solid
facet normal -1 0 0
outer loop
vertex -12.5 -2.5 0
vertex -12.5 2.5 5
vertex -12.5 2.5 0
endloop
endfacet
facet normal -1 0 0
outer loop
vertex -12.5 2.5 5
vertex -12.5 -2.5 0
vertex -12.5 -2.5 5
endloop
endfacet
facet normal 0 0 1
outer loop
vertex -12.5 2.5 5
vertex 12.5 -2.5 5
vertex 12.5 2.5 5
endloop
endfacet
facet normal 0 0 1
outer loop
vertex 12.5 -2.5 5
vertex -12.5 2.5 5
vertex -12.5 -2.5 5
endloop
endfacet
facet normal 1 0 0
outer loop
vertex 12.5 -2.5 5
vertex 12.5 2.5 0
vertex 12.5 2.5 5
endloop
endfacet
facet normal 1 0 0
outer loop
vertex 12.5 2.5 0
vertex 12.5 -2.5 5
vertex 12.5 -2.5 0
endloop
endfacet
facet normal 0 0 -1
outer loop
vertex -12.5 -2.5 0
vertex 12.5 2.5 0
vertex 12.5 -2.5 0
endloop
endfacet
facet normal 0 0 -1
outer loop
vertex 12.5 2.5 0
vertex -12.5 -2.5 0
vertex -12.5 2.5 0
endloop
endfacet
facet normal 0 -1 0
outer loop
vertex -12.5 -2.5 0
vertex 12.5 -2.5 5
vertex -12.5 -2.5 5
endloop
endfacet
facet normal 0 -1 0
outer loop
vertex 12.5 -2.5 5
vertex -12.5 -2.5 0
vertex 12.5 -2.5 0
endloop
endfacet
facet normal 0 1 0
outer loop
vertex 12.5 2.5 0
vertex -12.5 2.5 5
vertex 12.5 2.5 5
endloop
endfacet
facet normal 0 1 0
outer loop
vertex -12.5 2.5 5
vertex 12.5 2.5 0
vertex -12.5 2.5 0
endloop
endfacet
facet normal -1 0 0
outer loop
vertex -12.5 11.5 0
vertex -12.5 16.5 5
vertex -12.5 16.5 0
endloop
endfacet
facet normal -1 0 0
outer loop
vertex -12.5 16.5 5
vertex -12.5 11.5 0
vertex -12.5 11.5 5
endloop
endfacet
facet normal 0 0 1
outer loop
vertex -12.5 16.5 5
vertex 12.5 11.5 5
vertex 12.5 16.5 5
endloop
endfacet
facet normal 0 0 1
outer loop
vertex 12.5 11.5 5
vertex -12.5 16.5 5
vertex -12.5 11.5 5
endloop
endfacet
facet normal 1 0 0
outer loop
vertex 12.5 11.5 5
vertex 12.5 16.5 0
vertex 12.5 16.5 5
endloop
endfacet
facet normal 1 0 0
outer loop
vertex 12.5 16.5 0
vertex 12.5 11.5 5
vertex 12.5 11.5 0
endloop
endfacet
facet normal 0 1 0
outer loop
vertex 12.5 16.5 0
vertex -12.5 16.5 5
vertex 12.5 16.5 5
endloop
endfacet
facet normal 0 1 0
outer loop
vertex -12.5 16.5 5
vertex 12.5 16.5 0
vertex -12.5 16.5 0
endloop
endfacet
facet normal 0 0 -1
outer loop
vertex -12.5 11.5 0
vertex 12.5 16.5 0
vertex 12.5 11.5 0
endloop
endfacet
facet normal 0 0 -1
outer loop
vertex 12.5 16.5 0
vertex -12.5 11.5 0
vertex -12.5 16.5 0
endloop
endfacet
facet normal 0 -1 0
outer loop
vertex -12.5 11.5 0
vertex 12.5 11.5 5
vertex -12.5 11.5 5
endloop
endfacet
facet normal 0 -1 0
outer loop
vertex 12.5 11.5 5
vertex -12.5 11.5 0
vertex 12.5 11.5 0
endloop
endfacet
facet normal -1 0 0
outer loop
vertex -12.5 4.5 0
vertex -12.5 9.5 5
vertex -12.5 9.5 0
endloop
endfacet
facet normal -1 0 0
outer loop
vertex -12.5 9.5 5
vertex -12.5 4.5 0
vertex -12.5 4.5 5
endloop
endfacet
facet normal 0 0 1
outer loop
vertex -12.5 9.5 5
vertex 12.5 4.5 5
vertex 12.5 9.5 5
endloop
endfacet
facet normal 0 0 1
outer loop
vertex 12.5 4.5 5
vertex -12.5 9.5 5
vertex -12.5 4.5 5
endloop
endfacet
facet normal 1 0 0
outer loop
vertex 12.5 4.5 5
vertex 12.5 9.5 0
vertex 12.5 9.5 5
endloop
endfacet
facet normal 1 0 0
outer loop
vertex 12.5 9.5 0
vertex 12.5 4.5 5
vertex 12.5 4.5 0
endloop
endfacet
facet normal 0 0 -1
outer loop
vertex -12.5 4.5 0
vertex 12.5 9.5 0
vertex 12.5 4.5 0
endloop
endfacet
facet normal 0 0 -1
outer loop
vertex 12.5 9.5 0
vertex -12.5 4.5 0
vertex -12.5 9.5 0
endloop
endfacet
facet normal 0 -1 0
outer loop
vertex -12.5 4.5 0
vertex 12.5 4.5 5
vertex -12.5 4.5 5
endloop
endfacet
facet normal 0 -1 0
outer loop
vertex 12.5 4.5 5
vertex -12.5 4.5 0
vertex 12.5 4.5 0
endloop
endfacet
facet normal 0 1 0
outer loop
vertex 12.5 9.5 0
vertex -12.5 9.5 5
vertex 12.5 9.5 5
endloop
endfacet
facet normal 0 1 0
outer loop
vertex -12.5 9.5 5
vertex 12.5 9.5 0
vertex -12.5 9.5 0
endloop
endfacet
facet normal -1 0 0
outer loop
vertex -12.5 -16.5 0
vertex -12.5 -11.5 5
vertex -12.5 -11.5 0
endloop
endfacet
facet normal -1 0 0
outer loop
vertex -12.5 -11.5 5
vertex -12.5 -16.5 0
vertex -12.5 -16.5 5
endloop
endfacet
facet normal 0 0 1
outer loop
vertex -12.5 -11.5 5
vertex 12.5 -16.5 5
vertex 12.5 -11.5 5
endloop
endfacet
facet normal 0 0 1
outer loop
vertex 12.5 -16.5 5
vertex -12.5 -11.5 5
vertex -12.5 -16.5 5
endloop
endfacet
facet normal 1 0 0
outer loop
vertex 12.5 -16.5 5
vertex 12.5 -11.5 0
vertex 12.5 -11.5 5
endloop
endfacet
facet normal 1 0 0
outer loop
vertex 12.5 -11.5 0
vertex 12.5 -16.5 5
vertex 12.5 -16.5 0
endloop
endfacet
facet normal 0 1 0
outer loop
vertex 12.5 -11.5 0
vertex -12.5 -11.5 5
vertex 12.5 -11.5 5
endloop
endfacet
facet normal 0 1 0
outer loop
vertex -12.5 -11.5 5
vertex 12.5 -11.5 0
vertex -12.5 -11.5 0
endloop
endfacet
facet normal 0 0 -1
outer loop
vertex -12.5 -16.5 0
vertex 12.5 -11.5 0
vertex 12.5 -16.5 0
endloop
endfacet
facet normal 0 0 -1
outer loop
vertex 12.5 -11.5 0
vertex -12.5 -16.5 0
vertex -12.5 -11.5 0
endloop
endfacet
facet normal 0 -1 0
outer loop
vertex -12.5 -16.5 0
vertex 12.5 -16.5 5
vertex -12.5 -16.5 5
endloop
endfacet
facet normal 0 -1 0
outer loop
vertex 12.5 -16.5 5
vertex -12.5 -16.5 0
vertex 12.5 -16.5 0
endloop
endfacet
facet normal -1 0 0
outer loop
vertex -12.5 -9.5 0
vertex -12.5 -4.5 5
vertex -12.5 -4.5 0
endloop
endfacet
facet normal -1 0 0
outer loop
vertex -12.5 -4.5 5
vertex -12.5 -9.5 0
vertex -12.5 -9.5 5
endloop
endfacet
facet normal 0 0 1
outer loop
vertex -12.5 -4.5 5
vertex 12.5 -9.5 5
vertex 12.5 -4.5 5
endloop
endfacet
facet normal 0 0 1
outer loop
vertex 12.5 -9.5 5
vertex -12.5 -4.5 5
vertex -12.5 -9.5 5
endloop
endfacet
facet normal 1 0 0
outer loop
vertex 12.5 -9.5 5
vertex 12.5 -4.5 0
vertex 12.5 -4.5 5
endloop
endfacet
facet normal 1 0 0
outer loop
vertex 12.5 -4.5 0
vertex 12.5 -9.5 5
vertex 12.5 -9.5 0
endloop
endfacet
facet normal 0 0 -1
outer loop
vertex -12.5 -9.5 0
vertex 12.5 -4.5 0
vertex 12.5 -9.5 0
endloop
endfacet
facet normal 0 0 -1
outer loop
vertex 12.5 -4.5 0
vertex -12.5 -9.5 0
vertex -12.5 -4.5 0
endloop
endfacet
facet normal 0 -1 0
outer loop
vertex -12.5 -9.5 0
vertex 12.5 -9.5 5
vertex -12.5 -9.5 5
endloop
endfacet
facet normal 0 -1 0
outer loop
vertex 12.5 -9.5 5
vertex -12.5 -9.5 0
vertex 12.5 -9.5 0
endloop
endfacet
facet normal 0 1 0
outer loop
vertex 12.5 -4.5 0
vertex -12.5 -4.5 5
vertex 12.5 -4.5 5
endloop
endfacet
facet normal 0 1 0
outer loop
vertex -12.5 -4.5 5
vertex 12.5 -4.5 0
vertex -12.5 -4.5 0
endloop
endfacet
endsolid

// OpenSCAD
translate([0,0,2.5]){color("orange") cube([25, 5, 5],center=true);}
translate([0,14,2.5]){color("orange") cube([25, 5, 5],center=true);}
translate([0,7,2.5]){color("orange") cube([25, 5, 5],center=true);}
translate([0,-14,2.5]){color("orange") cube([25, 5, 5],center=true);}
translate([0,-7,2.5]){color("orange") cube([25, 5, 5],center=true);}
